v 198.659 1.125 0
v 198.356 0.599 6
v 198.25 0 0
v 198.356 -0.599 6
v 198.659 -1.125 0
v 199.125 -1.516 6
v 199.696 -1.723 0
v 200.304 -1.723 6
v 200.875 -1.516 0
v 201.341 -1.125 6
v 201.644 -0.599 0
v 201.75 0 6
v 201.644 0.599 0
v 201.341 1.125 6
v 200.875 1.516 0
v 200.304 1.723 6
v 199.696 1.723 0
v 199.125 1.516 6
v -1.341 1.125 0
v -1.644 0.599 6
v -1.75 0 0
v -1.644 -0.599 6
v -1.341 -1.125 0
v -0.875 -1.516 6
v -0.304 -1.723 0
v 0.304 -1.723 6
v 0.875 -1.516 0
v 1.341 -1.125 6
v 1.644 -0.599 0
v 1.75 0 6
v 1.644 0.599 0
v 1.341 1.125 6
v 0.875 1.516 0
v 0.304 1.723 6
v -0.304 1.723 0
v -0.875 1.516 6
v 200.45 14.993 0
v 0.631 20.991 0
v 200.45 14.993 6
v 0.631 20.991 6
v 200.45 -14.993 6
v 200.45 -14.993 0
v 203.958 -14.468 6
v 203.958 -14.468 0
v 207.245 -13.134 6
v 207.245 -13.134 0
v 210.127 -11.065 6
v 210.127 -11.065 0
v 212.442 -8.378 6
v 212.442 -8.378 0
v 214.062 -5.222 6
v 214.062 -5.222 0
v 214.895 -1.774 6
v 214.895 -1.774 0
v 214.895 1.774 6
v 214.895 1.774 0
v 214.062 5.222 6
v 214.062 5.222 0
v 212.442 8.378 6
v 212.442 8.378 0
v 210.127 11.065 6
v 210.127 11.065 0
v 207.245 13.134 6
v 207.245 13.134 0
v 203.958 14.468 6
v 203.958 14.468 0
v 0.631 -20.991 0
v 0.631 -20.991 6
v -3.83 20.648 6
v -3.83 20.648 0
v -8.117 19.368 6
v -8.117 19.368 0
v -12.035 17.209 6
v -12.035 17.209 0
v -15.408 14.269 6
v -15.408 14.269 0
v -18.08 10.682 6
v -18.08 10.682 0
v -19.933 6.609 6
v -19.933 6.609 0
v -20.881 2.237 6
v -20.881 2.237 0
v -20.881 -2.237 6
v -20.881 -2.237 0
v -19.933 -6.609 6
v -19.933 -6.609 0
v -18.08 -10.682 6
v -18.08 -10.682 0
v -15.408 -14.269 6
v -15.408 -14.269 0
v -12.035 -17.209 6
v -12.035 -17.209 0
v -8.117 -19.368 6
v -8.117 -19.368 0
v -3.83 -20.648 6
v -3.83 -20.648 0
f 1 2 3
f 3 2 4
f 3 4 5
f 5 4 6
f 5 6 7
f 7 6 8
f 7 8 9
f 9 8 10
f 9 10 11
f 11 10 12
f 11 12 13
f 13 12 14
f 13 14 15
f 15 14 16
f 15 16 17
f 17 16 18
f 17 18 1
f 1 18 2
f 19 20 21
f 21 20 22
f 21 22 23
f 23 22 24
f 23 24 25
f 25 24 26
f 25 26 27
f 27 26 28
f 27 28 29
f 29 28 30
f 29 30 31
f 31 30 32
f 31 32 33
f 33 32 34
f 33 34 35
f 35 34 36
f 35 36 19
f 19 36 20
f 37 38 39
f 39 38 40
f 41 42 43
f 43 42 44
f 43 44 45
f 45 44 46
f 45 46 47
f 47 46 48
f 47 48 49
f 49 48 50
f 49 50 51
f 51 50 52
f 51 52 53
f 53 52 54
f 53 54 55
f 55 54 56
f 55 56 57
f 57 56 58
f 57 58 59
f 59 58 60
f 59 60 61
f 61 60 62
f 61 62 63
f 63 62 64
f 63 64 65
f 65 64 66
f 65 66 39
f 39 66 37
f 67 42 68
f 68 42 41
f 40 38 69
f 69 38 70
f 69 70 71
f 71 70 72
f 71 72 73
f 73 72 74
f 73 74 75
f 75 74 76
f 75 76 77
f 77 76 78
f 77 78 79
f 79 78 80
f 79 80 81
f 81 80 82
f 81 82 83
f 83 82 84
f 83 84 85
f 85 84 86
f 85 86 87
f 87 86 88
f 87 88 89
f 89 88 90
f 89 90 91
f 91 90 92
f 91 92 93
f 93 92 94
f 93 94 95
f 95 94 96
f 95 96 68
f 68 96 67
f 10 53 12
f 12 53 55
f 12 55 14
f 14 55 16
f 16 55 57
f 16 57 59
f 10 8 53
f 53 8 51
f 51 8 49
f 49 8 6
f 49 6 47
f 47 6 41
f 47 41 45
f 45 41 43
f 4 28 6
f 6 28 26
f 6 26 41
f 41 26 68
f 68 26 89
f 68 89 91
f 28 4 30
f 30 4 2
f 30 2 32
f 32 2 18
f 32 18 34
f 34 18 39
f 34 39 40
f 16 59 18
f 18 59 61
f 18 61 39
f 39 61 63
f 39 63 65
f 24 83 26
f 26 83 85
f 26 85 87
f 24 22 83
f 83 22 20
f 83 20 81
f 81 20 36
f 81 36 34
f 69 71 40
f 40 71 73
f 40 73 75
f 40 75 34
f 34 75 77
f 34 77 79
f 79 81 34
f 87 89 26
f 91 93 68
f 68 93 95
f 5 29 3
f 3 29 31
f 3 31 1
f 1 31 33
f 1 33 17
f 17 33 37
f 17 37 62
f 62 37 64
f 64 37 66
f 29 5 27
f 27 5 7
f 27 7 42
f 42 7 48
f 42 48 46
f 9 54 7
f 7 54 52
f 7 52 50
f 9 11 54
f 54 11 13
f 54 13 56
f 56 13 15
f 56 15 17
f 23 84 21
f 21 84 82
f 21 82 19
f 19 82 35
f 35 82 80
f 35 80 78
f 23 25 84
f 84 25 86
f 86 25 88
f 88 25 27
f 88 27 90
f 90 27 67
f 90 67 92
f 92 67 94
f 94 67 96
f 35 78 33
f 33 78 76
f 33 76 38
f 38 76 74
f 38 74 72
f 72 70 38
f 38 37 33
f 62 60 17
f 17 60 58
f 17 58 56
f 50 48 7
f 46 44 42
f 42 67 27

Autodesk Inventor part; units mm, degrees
ref_plane "YZ Plane" through (0, 0, 0) normal (1, 0, 0) x (0, 1, 0)
ref_plane "XZ Plane" through (0, 0, 0) normal (0, 1, 0) x (-1, 0, 0)
ref_plane "XY Plane" through (0, 0, 0) normal (0, 0, 1) x (1, 0, 0)
sketch "Sketch1" plane through (0, 0, 0) normal (0, 0, 1) x (1, 0, 0)
  circle A0 centre (0, 0) radius 21
  circle A1 centre (200, 0) radius 15
  line L0 (0, 0) -> (200, 0)
  line L1 (0.6307, 20.9905) -> (200.45, 14.9932)
  line L2 (0.6307, -20.9905) -> (200.45, -14.9932)
  dimension "d10" = 15
  dimension "d11" = 21
  dimension "d9" = 200
extrude "Extrusion1" add sketch "Sketch1" along normal blind 6
sketch "Sketch2" plane through (0, 0, 6) normal (0, 0, 1) x (1, 0, 0)
  circle A0 centre (0, 0) radius 1.75
  arc A1 (200.45, -14.9932) -> (200.45, 14.9932) centre (200, 0) ccw projected
  circle A2 centre (200, 0) radius 1.75
  point P0 (293.3543, -13.4475)
  point P1 (293.3543, 13.4475)
  point P2 (250.3596, -14.9957)
  point P3 (250.3596, 14.9957)
  dimension "d5" = 3.5
  dimension "d6" = 3.5
extrude "Extrusion2" cut sketch "Sketch2" against normal through all
properties part number "Tibia"
